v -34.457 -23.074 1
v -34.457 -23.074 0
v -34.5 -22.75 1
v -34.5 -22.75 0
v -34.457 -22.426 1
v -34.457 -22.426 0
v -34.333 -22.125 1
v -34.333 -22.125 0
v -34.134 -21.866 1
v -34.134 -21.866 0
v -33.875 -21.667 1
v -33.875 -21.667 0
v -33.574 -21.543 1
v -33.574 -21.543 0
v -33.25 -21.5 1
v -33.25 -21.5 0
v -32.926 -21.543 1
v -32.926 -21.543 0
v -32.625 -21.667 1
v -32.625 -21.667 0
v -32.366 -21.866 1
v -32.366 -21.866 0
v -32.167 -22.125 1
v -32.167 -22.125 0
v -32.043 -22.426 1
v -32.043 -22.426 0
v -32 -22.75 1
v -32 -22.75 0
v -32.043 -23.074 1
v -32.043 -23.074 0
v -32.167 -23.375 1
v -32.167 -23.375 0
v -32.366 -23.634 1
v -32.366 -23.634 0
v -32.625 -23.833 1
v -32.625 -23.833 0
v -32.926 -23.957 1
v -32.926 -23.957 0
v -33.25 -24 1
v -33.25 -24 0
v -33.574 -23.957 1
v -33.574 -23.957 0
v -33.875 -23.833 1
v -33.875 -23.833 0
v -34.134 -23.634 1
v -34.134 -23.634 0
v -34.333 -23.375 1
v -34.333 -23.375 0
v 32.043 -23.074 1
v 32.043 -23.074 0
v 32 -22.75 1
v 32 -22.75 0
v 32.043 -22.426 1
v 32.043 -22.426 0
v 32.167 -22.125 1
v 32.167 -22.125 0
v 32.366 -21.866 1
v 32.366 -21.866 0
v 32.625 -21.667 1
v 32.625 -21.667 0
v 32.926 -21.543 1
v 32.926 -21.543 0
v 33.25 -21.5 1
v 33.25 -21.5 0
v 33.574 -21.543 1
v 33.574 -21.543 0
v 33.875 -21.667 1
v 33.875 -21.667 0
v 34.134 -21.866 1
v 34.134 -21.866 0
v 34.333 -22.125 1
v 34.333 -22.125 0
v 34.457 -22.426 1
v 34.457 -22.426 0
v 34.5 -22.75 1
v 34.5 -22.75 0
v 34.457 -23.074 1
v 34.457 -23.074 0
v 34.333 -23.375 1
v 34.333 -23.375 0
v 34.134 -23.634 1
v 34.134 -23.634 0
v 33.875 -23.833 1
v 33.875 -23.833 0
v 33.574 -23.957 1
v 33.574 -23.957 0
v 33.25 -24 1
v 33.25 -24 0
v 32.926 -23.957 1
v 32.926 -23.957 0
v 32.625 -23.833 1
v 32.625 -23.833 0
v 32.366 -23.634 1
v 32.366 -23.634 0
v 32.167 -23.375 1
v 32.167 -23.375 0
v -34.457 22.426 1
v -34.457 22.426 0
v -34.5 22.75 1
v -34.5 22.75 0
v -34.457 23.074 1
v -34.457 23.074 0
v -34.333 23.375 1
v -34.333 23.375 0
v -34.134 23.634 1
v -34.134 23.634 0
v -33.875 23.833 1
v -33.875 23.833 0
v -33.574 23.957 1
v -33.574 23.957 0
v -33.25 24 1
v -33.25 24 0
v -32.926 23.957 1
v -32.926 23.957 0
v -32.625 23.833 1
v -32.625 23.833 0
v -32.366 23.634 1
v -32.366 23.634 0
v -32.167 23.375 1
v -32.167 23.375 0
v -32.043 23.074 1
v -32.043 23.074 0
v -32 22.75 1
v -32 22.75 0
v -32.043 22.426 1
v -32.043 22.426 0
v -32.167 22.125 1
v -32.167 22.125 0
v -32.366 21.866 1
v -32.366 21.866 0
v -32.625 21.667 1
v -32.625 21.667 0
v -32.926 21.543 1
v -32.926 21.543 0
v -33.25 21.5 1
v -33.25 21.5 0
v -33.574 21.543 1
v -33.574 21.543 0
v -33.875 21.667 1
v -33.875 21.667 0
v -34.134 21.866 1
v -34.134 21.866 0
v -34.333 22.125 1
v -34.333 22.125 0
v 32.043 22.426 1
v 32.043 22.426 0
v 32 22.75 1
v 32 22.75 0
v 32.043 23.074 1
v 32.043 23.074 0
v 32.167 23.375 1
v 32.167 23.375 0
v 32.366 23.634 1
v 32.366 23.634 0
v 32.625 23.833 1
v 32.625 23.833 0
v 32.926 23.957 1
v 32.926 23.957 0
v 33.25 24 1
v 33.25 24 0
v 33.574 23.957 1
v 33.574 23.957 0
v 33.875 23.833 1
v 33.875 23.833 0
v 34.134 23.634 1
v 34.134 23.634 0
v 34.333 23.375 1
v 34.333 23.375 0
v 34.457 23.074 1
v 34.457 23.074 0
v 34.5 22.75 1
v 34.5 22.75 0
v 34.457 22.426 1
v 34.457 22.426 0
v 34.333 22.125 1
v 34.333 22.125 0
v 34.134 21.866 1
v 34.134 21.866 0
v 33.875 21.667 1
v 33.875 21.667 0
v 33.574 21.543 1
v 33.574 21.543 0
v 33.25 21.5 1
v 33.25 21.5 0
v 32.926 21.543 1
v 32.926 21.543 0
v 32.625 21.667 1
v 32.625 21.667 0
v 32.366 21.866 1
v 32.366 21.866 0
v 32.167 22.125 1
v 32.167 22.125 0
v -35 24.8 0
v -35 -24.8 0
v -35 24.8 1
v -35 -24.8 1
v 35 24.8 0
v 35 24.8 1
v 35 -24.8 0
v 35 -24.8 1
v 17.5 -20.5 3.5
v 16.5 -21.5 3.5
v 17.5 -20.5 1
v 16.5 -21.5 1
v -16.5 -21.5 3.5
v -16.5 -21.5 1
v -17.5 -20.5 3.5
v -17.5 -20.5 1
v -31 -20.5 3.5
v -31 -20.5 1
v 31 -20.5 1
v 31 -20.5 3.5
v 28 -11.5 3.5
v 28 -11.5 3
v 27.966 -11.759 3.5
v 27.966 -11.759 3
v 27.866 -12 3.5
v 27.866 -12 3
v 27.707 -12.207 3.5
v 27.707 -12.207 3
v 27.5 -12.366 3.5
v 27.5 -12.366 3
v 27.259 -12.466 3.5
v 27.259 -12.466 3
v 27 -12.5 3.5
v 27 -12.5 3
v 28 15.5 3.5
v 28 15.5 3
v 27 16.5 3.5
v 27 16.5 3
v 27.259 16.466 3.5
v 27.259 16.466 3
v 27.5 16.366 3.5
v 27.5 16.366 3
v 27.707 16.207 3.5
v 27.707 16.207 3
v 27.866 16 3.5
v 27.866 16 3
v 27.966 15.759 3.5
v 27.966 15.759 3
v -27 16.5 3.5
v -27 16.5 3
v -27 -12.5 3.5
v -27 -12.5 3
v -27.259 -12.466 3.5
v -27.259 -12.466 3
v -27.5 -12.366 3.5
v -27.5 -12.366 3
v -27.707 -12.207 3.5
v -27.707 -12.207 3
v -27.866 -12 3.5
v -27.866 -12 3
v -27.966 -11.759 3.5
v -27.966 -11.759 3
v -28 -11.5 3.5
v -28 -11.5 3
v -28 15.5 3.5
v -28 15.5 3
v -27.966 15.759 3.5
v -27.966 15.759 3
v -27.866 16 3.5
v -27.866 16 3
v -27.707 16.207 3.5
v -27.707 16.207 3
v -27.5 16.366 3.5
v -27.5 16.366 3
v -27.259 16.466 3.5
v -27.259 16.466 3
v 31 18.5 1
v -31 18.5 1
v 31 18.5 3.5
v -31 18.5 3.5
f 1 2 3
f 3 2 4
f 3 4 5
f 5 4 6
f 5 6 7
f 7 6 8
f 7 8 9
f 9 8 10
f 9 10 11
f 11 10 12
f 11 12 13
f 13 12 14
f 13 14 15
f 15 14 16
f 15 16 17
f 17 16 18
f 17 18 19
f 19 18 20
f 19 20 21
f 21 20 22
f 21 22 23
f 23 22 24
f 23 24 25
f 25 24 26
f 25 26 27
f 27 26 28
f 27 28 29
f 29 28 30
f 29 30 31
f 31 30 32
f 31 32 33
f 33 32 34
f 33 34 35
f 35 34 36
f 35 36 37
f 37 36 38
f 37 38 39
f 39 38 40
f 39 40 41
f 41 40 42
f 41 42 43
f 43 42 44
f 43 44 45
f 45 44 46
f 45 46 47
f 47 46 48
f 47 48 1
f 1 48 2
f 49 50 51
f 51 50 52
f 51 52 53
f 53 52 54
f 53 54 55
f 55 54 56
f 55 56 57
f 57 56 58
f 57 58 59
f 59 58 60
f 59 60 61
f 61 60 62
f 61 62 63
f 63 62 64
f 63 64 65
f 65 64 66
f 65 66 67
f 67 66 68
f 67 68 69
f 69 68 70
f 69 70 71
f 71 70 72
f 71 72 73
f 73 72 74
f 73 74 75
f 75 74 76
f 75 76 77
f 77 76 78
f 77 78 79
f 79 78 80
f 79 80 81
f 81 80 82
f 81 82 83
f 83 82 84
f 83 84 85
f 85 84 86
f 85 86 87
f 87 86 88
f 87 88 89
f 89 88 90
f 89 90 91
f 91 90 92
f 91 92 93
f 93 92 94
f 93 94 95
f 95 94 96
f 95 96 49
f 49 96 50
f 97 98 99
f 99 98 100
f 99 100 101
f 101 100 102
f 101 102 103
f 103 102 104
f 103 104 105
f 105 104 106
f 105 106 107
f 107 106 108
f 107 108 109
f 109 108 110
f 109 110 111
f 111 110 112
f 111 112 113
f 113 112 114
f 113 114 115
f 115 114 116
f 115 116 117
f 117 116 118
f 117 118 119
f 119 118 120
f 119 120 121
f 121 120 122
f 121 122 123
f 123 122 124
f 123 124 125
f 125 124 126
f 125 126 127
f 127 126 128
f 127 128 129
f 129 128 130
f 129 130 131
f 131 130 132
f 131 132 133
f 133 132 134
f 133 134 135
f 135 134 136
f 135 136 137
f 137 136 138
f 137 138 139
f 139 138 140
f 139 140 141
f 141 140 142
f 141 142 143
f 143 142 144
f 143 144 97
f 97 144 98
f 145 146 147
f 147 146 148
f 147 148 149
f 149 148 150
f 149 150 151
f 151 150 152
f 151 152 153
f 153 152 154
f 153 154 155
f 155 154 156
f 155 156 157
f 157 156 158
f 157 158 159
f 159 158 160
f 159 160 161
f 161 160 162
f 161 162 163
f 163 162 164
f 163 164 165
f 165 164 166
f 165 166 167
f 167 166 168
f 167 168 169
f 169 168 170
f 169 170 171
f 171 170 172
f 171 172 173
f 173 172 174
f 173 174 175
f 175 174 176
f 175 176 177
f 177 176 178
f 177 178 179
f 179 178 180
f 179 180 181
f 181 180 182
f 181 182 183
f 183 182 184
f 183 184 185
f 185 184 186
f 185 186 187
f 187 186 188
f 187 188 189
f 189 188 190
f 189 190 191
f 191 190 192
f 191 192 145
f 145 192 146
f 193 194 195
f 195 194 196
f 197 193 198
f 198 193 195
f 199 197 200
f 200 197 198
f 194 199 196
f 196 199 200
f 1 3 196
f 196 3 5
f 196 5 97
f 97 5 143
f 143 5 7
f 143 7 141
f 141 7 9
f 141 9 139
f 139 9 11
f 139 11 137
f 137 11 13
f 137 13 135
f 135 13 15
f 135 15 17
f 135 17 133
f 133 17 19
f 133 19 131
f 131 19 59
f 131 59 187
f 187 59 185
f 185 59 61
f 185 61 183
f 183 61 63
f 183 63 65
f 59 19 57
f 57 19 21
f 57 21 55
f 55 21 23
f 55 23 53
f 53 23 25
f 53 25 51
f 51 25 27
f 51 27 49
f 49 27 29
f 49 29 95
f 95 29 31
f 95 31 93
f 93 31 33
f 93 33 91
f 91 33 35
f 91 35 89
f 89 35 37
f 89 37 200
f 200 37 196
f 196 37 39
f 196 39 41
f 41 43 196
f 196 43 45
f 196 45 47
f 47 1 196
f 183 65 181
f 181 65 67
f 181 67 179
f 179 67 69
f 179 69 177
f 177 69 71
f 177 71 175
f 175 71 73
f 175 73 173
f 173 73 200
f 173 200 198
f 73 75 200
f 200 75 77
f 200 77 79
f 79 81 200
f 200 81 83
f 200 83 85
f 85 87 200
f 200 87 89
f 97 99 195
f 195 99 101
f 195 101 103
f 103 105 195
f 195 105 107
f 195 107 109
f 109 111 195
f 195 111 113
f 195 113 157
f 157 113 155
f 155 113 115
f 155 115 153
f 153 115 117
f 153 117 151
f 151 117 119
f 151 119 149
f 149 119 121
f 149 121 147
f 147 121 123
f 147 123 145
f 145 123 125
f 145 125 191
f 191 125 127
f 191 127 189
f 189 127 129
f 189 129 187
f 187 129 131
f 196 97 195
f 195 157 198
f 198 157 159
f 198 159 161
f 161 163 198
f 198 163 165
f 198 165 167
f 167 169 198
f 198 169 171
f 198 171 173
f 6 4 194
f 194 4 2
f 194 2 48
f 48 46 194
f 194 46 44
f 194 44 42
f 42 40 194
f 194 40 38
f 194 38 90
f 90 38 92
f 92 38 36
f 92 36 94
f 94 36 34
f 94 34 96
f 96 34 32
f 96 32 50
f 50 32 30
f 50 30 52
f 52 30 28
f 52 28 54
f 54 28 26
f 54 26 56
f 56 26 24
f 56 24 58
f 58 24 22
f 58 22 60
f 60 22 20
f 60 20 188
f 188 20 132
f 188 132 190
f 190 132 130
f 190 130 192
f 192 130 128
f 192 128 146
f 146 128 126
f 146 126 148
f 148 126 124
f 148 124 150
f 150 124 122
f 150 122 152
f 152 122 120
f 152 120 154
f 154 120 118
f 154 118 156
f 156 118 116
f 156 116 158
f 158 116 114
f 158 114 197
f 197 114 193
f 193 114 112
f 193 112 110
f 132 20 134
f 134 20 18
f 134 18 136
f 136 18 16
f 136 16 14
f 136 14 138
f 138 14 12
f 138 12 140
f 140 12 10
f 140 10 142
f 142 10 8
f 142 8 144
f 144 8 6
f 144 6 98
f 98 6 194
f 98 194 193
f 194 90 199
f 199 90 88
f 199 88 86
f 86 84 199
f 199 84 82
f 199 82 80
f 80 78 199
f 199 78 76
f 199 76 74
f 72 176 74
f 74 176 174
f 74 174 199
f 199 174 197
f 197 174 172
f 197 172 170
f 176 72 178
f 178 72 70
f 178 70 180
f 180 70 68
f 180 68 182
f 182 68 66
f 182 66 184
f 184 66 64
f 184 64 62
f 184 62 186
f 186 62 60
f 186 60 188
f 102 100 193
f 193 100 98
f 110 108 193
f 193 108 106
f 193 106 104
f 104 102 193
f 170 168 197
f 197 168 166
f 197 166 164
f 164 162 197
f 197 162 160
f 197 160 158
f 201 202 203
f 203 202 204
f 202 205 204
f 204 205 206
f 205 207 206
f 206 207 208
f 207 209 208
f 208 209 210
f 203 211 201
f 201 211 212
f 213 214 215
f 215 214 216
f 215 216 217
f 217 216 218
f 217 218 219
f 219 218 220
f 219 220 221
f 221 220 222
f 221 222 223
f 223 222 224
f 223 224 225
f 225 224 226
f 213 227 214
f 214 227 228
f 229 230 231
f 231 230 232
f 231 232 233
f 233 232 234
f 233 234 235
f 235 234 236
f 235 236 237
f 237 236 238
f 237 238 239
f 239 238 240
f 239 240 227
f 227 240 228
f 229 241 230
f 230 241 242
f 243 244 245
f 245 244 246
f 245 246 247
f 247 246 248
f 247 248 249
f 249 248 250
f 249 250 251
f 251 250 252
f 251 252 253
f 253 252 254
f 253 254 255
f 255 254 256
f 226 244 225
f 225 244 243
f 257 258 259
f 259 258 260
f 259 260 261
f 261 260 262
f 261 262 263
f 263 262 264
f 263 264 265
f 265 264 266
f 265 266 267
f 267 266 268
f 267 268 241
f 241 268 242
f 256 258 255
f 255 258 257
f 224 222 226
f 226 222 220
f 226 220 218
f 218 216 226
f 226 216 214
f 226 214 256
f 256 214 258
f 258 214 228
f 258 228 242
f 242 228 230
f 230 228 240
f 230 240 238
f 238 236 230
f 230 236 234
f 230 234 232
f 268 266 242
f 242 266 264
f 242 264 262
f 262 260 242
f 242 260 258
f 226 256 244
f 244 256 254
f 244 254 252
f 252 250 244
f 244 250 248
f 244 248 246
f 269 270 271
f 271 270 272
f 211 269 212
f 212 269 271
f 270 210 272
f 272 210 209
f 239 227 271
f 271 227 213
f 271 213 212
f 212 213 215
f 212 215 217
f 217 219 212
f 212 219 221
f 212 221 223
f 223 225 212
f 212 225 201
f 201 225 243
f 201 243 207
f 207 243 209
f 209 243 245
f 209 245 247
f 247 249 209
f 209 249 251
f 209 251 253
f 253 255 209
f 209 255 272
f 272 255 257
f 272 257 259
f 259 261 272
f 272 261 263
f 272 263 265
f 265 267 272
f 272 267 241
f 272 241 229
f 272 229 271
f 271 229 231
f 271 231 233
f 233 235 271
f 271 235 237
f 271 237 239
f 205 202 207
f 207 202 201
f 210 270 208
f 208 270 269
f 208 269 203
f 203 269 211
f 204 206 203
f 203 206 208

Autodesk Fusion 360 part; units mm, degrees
sketch "pcb" plane through (0, 0, 0) normal (0, 0, 1) x (1, 0, 0)
  line L0 (-35, 24.8) -> (35, 24.8)
  line L1 (35, 24.8) -> (35, -24.8)
  line L2 (35, -24.8) -> (-35, -24.8)
  line L3 (-35, -24.8) -> (-35, 24.8)
  line L4 (0, 24.8) -> (0, 0) construction
  line L5 (0, 0) -> (-35, 0) construction
  dimension "d1" = 70
  dimension "d2" = 49.6
sketch "holes" plane through (0, 0, 0) normal (0, 0, 1) x (1, 0, 0)
  line L0 (-33.25, 22.75) -> (33.25, 22.75) construction
  line L1 (33.25, 22.75) -> (33.25, -22.75) construction
  line L2 (33.25, -22.75) -> (-33.25, -22.75) construction
  line L3 (-33.25, -22.75) -> (-33.25, 22.75) construction
  line L4 (0, 22.75) -> (0, 0) construction
  line L5 (0, 0) -> (-33.25, 0) construction
  circle A0 centre (-33.25, 22.75) radius 1.25
  circle A1 centre (33.25, 22.75) radius 1.25
  circle A2 centre (33.25, -22.75) radius 1.25
  circle A3 centre (-33.25, -22.75) radius 1.25
  dimension "d3" = 66.5
  dimension "d4" = 45.5
  dimension "d5" = 2.5
sketch "bezel" plane through (0, 0, 0) normal (0, 0, 1) x (1, 0, 0)
  line L0 (-31, 18.5) -> (31, 18.5)
  line L1 (31, 18.5) -> (31, -20.5)
  line L2 (31, -20.5) -> (-31, -20.5)
  line L3 (-31, -20.5) -> (-31, 18.5)
  line L4 (0, 18.5) -> (0, -1) construction
  line L5 (0, -1) -> (-31, -1) construction
  line L6 (-17.5, -20.5) -> (-16.5, -21.5)
  line L7 (-16.5, -21.5) -> (16.5, -21.5)
  line L8 (16.5, -21.5) -> (17.5, -20.5)
  line L9 (0, -21.5) -> (0, -20.5) construction
  dimension "d6" = 62
  dimension "d7" = 39
  dimension "d10" = 1
  dimension "d25" = 45
  dimension "d26" = 1
  dimension "d27" = 33
extrude "Extrude1" add sketch "pcb" along normal blind 1 makes body 1
extrude "Extrude2" cut sketch "holes" along normal blind 1 bodies 1
extrude "Extrude3" add sketch "bezel" along normal blind 2.5 from surface at 1 separate body contours L0 L1 L2 L3 makes body 2
sketch "frame" plane through (0, 0, 3.5) normal (0, 0, 1) x (-1, 0, 0)
  line L0 (31, -18.5) -> (31, 20.5)
  line L1 (31, 20.5) -> (-31, 20.5)
  line L2 (-31, 20.5) -> (-31, -18.5)
  line L3 (-31, -18.5) -> (31, -18.5)
  line L4 (28, -16.5) -> (-28, -16.5)
  line L5 (-28, -16.5) -> (-28, 12.5)
  line L6 (-28, 12.5) -> (28, 12.5)
  line L7 (28, 12.5) -> (28, -16.5)
  line L8 (0, -16.5) -> (0, -2) construction
  line L9 (0, -2) -> (28, -2) construction
  dimension "d18" = 56
  dimension "d19" = 29
  dimension "d20" = 2
extrude "Extrude4" cut sketch "frame" against normal blind 0.5 contours L4 L5 L6 L7 bodies 2
fillet "Fillet1" radius 1 4 edges at (-28, 16.5, 3.25) (-28, -12.5, 3.25) (28, 16.5, 3.25) (28, -12.5, 3.25) on bodies 2
extrude "Extrude5" add sketch "bezel" along normal up to surface (2.5 mm away) from surface at 1 contours L2 L6 L7 L8 bodies 2
